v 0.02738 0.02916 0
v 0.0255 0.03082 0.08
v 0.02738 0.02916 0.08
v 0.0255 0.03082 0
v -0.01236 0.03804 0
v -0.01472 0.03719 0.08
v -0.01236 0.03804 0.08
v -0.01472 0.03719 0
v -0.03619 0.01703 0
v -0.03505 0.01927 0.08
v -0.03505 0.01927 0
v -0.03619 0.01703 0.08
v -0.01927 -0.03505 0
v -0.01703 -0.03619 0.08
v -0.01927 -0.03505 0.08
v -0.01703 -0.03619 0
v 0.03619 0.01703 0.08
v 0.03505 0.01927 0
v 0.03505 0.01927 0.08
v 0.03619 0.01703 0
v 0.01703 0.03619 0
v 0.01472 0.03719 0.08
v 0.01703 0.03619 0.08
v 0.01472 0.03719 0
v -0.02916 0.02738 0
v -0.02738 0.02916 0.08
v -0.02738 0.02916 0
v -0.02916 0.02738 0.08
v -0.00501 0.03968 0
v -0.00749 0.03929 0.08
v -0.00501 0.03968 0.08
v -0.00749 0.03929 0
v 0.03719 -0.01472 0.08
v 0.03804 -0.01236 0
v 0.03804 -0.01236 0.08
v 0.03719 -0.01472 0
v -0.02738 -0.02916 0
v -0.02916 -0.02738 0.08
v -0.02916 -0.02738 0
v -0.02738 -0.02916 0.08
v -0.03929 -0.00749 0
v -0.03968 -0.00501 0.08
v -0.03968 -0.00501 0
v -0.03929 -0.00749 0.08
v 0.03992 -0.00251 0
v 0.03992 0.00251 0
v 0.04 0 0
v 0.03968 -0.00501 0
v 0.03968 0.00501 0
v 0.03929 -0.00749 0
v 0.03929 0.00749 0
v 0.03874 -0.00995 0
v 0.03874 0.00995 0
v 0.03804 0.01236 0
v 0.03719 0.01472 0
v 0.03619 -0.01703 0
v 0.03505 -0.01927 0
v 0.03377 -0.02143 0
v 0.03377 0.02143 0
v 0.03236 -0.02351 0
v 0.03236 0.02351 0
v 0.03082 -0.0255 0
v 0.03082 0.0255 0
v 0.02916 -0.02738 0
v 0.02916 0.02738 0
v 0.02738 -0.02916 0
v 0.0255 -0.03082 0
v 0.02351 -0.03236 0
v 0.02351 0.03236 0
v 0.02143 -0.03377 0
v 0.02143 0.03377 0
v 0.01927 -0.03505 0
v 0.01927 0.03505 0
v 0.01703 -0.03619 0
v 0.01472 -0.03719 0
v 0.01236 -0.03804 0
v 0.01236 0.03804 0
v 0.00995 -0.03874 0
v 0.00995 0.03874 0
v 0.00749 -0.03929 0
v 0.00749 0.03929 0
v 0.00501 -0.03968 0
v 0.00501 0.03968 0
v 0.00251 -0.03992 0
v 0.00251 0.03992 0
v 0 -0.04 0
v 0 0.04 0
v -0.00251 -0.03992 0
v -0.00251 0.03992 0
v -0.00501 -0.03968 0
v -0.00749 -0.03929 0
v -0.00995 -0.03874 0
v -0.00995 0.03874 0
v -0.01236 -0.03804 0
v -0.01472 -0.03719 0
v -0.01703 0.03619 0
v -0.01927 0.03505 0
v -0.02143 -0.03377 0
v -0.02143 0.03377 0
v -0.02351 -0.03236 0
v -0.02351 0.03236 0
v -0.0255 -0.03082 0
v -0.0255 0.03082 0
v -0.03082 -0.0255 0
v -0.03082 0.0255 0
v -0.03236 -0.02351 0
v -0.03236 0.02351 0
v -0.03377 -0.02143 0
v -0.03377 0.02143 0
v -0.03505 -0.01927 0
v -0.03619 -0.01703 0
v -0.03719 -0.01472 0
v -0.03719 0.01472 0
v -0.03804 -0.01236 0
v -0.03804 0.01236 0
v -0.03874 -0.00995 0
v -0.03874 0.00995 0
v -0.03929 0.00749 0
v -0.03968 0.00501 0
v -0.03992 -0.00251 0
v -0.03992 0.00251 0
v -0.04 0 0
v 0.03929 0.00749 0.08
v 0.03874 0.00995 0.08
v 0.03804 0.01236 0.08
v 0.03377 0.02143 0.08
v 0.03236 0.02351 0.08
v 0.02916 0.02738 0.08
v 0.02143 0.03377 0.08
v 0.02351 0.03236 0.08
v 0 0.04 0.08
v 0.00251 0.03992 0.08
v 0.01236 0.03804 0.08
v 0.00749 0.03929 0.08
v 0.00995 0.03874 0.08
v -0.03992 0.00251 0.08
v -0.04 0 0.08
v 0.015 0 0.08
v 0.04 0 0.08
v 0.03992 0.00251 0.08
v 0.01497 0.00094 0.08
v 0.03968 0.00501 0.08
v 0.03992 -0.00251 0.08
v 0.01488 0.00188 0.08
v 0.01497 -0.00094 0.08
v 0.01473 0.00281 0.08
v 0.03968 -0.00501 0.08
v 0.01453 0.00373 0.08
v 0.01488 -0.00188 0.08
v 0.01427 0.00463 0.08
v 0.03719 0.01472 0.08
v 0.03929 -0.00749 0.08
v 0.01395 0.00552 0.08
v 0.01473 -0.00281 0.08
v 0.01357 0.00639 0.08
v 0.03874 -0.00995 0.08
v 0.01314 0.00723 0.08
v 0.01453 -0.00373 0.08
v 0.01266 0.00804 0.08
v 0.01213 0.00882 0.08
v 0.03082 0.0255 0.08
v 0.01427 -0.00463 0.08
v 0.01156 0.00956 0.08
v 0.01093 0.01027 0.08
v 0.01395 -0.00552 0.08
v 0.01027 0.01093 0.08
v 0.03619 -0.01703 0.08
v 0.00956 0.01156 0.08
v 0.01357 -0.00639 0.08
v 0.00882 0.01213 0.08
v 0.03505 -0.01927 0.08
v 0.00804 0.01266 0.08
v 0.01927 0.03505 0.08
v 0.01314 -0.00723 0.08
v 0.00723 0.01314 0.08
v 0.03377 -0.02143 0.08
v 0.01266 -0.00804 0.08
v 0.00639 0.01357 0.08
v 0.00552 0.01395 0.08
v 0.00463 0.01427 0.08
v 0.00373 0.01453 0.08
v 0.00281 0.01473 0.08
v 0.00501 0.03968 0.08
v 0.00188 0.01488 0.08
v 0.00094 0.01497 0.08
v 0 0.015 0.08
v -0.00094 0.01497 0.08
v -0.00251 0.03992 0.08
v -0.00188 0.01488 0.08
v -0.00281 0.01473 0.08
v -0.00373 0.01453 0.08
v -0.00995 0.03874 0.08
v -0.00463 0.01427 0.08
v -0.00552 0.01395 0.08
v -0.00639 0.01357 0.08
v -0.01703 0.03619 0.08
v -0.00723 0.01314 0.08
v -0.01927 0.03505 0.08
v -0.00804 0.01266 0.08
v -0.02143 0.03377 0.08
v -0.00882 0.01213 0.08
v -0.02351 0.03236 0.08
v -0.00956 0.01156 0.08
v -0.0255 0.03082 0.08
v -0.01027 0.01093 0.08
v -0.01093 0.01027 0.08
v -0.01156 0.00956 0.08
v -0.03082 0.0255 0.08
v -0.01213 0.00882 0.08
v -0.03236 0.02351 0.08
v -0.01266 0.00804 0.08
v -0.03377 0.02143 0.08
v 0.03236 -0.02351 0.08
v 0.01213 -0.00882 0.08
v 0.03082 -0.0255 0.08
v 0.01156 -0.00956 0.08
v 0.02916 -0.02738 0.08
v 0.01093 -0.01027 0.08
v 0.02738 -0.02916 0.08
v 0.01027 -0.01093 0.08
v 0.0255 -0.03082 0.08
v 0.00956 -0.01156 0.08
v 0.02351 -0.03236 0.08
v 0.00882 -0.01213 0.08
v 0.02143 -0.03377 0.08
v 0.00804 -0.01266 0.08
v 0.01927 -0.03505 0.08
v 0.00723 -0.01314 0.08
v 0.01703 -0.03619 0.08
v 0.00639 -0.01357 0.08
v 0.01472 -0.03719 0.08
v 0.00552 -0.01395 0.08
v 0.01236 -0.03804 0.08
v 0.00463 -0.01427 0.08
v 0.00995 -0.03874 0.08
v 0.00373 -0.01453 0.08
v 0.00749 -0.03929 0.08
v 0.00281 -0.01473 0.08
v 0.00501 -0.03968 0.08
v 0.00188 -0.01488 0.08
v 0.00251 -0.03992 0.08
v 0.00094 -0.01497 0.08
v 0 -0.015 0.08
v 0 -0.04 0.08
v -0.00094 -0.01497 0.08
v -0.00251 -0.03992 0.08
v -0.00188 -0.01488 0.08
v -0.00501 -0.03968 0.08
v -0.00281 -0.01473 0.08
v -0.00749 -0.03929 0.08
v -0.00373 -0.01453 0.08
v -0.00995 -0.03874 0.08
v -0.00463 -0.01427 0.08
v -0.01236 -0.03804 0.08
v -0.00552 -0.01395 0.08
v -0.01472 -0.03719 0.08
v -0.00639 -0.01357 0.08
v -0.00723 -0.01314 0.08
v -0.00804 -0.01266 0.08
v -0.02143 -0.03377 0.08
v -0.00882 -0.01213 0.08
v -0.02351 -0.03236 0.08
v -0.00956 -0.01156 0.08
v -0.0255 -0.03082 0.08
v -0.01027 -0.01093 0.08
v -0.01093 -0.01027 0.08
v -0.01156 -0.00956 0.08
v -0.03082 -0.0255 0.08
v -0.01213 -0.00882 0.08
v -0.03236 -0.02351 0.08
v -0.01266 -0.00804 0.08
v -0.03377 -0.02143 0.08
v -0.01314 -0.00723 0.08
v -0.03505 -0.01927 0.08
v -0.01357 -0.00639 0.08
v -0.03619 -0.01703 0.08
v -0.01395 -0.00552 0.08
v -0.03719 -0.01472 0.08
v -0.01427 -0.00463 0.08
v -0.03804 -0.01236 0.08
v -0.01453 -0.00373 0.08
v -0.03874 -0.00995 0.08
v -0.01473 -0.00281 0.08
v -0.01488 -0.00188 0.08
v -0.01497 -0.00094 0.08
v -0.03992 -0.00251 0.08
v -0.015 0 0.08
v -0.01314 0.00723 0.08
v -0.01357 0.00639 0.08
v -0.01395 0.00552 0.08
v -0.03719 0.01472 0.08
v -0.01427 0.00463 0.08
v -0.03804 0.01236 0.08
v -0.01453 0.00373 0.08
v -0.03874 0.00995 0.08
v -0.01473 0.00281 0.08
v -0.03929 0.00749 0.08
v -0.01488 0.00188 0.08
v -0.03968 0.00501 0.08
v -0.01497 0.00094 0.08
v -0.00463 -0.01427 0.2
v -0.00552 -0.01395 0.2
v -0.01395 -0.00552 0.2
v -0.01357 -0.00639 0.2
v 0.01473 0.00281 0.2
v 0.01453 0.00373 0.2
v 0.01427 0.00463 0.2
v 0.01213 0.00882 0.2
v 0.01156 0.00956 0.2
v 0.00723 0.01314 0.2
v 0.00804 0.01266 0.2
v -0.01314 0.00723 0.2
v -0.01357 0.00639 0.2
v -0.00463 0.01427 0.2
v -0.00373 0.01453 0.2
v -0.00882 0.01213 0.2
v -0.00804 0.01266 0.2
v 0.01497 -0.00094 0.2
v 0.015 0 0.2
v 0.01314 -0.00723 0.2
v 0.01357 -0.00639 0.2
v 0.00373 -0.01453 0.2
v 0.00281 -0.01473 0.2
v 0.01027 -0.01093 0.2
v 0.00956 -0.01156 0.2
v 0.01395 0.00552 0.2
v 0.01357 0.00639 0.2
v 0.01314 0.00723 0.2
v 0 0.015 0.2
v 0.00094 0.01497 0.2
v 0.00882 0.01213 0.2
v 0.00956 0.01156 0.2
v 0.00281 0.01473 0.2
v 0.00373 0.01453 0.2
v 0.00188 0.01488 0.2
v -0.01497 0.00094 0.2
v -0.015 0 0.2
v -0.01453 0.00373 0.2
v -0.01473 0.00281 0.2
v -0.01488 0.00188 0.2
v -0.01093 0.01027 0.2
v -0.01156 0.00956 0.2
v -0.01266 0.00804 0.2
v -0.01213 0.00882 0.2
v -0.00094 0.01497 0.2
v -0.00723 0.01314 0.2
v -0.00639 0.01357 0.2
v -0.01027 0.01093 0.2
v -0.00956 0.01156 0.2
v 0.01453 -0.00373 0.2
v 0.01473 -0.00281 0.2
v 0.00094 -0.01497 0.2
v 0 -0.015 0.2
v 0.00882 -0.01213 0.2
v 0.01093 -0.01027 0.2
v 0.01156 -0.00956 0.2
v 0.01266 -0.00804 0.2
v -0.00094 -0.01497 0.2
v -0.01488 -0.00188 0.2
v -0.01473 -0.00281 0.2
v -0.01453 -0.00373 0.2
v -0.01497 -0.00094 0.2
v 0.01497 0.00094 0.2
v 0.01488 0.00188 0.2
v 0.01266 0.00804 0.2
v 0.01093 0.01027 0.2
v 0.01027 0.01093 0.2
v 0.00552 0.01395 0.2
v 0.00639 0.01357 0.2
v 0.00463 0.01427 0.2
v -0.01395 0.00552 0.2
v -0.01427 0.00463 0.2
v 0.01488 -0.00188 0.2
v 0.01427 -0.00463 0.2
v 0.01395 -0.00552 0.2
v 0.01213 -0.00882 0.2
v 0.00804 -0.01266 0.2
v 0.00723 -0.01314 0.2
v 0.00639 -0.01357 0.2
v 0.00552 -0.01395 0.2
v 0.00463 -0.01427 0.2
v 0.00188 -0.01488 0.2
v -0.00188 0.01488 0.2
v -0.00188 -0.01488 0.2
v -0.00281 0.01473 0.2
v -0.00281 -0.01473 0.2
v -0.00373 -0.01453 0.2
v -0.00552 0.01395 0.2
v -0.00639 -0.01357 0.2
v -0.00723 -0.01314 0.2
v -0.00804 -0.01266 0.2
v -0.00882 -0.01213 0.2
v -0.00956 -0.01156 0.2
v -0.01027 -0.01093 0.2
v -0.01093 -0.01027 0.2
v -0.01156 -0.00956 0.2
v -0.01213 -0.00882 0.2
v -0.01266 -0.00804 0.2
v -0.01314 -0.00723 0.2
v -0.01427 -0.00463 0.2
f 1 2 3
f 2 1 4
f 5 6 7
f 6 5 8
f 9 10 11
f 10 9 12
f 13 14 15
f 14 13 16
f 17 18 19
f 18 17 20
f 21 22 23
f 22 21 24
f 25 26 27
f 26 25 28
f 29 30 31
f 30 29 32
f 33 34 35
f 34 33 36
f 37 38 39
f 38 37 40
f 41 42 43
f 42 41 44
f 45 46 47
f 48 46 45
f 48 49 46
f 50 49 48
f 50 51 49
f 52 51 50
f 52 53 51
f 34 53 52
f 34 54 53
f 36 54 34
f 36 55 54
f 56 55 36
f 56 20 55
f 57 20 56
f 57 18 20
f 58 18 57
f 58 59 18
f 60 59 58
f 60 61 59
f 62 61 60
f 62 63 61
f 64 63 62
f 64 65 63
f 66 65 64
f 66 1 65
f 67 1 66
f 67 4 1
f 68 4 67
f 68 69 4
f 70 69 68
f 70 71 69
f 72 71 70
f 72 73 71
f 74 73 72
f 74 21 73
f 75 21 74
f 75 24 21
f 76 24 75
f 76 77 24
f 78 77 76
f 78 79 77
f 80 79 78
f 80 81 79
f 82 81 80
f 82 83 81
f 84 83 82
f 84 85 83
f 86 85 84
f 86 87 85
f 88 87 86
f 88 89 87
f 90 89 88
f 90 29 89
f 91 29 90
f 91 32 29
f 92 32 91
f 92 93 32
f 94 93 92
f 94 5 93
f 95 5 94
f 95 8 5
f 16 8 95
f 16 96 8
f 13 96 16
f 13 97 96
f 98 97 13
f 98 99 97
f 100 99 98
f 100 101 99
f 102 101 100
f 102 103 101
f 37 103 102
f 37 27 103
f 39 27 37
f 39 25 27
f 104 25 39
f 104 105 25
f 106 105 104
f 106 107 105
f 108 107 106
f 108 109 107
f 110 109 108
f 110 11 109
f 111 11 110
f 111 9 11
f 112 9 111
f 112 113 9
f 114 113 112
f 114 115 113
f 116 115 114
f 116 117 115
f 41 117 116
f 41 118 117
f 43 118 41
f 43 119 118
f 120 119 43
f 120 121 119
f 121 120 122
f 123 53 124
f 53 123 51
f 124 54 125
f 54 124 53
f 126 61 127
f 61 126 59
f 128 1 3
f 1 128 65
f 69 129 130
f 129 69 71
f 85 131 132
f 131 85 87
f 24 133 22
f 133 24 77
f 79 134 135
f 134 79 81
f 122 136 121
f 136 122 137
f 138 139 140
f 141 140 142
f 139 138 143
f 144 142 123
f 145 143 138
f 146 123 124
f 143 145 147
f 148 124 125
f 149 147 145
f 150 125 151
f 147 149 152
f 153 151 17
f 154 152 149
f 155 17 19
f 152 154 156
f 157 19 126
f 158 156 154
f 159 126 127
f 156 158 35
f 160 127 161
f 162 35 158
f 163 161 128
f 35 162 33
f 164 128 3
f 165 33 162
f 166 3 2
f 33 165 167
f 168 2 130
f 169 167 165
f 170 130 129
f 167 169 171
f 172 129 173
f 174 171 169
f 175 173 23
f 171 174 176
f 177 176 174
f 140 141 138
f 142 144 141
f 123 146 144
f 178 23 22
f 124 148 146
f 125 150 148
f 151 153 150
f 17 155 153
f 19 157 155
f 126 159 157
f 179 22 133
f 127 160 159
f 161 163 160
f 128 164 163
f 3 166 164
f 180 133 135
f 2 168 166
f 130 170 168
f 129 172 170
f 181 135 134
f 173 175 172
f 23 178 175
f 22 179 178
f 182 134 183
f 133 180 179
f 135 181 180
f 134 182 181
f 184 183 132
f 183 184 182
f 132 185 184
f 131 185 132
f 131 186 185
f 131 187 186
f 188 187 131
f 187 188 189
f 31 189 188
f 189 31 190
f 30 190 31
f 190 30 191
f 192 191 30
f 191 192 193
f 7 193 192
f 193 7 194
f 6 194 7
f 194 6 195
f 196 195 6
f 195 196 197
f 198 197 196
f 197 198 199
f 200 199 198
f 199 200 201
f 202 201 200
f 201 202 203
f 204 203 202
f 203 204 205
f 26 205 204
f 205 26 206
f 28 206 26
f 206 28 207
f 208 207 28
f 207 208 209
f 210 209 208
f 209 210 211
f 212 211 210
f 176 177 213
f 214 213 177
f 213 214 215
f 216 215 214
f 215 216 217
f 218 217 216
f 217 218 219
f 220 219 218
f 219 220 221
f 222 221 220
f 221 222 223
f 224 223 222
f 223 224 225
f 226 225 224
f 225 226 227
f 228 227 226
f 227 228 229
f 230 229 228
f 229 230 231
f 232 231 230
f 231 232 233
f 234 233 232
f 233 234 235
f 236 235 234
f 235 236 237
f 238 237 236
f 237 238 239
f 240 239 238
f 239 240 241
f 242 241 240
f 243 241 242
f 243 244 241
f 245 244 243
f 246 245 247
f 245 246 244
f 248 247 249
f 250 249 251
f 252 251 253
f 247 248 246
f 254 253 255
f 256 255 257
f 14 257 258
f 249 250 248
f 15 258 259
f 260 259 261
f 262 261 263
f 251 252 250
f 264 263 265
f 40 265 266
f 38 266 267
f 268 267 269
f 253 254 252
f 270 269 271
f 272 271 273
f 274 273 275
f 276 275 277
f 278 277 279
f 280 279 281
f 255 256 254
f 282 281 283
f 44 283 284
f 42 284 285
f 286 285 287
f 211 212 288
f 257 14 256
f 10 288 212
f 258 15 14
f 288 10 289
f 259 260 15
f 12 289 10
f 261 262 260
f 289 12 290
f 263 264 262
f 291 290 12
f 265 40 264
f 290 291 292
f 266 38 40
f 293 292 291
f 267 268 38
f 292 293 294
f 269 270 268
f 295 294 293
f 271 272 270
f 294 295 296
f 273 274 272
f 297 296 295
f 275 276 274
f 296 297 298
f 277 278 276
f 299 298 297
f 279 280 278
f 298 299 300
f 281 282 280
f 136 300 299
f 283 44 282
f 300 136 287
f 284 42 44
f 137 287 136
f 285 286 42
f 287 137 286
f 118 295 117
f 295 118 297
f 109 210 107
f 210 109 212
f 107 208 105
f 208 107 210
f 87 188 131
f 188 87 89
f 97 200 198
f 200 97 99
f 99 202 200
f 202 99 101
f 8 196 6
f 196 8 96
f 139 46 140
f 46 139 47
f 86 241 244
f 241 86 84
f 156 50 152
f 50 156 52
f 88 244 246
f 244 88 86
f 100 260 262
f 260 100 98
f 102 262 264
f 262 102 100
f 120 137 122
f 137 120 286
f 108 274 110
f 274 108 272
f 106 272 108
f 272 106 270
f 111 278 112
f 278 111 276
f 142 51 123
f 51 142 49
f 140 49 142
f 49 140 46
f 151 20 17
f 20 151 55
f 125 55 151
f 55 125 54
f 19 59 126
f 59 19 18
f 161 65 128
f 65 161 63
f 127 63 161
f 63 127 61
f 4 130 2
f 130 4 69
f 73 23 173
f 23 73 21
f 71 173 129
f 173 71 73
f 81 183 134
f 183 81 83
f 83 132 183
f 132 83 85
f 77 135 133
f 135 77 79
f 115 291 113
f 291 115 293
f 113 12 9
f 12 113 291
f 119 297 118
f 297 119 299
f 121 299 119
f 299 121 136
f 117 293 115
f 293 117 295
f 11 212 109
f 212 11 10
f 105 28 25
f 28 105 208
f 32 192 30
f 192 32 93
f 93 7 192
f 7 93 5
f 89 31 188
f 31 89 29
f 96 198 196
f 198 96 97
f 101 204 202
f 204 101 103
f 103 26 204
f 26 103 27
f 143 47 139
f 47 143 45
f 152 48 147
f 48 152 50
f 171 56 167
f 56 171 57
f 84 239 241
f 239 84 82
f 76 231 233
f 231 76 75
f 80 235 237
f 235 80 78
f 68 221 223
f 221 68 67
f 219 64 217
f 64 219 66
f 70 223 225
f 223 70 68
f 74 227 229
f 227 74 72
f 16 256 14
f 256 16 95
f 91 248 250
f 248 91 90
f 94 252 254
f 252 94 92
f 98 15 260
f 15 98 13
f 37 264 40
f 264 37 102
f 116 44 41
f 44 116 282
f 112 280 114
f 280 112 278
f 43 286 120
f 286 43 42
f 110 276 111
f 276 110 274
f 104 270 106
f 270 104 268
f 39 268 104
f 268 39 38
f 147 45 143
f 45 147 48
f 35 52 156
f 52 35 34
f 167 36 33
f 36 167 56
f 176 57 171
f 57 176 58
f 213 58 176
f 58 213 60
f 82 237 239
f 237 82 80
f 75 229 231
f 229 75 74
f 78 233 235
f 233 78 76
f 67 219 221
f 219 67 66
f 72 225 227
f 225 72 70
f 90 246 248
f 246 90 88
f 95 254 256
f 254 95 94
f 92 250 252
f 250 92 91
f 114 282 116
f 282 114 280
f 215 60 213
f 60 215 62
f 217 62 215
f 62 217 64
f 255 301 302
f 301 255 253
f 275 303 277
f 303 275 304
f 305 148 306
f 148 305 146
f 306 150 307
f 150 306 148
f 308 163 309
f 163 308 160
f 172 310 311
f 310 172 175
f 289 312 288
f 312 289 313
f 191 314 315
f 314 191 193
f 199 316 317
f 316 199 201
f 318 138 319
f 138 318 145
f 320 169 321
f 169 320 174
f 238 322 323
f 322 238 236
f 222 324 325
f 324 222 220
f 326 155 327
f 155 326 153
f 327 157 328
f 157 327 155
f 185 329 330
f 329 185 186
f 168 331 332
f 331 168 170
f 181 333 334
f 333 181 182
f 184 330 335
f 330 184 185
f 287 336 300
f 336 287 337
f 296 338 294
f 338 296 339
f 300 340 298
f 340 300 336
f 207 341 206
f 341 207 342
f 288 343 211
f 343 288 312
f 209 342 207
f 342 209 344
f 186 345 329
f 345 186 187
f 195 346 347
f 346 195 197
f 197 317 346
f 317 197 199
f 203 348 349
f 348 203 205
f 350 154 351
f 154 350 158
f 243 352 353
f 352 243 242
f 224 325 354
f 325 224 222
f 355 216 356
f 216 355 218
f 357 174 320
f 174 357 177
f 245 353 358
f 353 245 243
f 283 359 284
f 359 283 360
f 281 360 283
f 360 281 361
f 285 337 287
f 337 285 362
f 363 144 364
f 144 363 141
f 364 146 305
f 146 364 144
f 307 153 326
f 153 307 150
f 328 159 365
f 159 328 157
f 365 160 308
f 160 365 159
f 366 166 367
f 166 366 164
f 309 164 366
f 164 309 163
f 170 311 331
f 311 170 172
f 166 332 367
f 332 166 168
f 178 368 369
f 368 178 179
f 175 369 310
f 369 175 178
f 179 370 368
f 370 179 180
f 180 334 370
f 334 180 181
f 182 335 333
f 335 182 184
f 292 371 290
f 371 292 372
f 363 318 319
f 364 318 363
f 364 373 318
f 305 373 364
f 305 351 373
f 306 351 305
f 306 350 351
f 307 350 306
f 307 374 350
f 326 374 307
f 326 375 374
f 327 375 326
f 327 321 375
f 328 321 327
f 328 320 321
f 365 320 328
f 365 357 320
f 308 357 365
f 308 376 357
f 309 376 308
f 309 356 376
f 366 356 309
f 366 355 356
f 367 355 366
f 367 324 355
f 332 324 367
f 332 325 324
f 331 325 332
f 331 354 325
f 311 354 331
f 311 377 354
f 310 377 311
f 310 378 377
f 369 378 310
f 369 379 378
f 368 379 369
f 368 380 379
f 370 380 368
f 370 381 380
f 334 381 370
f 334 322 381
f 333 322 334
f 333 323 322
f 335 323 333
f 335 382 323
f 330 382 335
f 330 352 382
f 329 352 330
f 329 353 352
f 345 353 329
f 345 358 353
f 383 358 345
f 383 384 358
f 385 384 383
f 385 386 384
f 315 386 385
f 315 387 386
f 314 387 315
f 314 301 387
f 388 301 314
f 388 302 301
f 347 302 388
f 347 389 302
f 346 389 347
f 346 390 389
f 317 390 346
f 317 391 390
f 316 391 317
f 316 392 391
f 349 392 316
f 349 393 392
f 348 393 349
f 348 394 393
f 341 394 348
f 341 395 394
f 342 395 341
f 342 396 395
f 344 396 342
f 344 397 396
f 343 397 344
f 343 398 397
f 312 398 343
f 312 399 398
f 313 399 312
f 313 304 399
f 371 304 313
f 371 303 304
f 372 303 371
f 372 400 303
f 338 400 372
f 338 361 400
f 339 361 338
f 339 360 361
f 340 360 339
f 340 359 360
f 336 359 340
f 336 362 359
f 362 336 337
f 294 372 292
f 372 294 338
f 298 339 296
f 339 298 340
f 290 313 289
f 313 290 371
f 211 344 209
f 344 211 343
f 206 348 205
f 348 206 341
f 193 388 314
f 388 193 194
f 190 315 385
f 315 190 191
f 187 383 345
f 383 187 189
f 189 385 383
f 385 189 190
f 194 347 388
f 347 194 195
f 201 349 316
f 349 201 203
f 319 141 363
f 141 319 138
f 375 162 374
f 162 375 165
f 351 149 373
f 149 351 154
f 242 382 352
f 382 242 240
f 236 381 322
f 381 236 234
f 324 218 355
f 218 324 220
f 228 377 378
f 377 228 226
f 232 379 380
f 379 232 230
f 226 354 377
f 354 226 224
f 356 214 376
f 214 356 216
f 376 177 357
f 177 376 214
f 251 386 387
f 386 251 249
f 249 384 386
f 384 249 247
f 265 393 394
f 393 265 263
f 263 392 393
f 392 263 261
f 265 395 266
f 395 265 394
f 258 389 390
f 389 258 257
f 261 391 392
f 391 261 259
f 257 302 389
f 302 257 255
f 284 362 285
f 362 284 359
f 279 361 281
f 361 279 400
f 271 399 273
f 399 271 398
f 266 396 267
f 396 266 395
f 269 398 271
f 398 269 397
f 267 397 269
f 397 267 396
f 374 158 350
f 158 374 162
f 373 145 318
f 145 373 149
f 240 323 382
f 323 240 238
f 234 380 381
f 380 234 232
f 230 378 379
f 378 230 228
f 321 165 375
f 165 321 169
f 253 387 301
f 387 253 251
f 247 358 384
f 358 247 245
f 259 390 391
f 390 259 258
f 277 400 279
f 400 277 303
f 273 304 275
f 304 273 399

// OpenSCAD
$fn=100;

r1 = 0.040;
r2 = 0.015;
h1 = 0.080;
h2 = 0.200;

cylinder(r=r1, h=h1);

cylinder(r=r2, h=h2);
